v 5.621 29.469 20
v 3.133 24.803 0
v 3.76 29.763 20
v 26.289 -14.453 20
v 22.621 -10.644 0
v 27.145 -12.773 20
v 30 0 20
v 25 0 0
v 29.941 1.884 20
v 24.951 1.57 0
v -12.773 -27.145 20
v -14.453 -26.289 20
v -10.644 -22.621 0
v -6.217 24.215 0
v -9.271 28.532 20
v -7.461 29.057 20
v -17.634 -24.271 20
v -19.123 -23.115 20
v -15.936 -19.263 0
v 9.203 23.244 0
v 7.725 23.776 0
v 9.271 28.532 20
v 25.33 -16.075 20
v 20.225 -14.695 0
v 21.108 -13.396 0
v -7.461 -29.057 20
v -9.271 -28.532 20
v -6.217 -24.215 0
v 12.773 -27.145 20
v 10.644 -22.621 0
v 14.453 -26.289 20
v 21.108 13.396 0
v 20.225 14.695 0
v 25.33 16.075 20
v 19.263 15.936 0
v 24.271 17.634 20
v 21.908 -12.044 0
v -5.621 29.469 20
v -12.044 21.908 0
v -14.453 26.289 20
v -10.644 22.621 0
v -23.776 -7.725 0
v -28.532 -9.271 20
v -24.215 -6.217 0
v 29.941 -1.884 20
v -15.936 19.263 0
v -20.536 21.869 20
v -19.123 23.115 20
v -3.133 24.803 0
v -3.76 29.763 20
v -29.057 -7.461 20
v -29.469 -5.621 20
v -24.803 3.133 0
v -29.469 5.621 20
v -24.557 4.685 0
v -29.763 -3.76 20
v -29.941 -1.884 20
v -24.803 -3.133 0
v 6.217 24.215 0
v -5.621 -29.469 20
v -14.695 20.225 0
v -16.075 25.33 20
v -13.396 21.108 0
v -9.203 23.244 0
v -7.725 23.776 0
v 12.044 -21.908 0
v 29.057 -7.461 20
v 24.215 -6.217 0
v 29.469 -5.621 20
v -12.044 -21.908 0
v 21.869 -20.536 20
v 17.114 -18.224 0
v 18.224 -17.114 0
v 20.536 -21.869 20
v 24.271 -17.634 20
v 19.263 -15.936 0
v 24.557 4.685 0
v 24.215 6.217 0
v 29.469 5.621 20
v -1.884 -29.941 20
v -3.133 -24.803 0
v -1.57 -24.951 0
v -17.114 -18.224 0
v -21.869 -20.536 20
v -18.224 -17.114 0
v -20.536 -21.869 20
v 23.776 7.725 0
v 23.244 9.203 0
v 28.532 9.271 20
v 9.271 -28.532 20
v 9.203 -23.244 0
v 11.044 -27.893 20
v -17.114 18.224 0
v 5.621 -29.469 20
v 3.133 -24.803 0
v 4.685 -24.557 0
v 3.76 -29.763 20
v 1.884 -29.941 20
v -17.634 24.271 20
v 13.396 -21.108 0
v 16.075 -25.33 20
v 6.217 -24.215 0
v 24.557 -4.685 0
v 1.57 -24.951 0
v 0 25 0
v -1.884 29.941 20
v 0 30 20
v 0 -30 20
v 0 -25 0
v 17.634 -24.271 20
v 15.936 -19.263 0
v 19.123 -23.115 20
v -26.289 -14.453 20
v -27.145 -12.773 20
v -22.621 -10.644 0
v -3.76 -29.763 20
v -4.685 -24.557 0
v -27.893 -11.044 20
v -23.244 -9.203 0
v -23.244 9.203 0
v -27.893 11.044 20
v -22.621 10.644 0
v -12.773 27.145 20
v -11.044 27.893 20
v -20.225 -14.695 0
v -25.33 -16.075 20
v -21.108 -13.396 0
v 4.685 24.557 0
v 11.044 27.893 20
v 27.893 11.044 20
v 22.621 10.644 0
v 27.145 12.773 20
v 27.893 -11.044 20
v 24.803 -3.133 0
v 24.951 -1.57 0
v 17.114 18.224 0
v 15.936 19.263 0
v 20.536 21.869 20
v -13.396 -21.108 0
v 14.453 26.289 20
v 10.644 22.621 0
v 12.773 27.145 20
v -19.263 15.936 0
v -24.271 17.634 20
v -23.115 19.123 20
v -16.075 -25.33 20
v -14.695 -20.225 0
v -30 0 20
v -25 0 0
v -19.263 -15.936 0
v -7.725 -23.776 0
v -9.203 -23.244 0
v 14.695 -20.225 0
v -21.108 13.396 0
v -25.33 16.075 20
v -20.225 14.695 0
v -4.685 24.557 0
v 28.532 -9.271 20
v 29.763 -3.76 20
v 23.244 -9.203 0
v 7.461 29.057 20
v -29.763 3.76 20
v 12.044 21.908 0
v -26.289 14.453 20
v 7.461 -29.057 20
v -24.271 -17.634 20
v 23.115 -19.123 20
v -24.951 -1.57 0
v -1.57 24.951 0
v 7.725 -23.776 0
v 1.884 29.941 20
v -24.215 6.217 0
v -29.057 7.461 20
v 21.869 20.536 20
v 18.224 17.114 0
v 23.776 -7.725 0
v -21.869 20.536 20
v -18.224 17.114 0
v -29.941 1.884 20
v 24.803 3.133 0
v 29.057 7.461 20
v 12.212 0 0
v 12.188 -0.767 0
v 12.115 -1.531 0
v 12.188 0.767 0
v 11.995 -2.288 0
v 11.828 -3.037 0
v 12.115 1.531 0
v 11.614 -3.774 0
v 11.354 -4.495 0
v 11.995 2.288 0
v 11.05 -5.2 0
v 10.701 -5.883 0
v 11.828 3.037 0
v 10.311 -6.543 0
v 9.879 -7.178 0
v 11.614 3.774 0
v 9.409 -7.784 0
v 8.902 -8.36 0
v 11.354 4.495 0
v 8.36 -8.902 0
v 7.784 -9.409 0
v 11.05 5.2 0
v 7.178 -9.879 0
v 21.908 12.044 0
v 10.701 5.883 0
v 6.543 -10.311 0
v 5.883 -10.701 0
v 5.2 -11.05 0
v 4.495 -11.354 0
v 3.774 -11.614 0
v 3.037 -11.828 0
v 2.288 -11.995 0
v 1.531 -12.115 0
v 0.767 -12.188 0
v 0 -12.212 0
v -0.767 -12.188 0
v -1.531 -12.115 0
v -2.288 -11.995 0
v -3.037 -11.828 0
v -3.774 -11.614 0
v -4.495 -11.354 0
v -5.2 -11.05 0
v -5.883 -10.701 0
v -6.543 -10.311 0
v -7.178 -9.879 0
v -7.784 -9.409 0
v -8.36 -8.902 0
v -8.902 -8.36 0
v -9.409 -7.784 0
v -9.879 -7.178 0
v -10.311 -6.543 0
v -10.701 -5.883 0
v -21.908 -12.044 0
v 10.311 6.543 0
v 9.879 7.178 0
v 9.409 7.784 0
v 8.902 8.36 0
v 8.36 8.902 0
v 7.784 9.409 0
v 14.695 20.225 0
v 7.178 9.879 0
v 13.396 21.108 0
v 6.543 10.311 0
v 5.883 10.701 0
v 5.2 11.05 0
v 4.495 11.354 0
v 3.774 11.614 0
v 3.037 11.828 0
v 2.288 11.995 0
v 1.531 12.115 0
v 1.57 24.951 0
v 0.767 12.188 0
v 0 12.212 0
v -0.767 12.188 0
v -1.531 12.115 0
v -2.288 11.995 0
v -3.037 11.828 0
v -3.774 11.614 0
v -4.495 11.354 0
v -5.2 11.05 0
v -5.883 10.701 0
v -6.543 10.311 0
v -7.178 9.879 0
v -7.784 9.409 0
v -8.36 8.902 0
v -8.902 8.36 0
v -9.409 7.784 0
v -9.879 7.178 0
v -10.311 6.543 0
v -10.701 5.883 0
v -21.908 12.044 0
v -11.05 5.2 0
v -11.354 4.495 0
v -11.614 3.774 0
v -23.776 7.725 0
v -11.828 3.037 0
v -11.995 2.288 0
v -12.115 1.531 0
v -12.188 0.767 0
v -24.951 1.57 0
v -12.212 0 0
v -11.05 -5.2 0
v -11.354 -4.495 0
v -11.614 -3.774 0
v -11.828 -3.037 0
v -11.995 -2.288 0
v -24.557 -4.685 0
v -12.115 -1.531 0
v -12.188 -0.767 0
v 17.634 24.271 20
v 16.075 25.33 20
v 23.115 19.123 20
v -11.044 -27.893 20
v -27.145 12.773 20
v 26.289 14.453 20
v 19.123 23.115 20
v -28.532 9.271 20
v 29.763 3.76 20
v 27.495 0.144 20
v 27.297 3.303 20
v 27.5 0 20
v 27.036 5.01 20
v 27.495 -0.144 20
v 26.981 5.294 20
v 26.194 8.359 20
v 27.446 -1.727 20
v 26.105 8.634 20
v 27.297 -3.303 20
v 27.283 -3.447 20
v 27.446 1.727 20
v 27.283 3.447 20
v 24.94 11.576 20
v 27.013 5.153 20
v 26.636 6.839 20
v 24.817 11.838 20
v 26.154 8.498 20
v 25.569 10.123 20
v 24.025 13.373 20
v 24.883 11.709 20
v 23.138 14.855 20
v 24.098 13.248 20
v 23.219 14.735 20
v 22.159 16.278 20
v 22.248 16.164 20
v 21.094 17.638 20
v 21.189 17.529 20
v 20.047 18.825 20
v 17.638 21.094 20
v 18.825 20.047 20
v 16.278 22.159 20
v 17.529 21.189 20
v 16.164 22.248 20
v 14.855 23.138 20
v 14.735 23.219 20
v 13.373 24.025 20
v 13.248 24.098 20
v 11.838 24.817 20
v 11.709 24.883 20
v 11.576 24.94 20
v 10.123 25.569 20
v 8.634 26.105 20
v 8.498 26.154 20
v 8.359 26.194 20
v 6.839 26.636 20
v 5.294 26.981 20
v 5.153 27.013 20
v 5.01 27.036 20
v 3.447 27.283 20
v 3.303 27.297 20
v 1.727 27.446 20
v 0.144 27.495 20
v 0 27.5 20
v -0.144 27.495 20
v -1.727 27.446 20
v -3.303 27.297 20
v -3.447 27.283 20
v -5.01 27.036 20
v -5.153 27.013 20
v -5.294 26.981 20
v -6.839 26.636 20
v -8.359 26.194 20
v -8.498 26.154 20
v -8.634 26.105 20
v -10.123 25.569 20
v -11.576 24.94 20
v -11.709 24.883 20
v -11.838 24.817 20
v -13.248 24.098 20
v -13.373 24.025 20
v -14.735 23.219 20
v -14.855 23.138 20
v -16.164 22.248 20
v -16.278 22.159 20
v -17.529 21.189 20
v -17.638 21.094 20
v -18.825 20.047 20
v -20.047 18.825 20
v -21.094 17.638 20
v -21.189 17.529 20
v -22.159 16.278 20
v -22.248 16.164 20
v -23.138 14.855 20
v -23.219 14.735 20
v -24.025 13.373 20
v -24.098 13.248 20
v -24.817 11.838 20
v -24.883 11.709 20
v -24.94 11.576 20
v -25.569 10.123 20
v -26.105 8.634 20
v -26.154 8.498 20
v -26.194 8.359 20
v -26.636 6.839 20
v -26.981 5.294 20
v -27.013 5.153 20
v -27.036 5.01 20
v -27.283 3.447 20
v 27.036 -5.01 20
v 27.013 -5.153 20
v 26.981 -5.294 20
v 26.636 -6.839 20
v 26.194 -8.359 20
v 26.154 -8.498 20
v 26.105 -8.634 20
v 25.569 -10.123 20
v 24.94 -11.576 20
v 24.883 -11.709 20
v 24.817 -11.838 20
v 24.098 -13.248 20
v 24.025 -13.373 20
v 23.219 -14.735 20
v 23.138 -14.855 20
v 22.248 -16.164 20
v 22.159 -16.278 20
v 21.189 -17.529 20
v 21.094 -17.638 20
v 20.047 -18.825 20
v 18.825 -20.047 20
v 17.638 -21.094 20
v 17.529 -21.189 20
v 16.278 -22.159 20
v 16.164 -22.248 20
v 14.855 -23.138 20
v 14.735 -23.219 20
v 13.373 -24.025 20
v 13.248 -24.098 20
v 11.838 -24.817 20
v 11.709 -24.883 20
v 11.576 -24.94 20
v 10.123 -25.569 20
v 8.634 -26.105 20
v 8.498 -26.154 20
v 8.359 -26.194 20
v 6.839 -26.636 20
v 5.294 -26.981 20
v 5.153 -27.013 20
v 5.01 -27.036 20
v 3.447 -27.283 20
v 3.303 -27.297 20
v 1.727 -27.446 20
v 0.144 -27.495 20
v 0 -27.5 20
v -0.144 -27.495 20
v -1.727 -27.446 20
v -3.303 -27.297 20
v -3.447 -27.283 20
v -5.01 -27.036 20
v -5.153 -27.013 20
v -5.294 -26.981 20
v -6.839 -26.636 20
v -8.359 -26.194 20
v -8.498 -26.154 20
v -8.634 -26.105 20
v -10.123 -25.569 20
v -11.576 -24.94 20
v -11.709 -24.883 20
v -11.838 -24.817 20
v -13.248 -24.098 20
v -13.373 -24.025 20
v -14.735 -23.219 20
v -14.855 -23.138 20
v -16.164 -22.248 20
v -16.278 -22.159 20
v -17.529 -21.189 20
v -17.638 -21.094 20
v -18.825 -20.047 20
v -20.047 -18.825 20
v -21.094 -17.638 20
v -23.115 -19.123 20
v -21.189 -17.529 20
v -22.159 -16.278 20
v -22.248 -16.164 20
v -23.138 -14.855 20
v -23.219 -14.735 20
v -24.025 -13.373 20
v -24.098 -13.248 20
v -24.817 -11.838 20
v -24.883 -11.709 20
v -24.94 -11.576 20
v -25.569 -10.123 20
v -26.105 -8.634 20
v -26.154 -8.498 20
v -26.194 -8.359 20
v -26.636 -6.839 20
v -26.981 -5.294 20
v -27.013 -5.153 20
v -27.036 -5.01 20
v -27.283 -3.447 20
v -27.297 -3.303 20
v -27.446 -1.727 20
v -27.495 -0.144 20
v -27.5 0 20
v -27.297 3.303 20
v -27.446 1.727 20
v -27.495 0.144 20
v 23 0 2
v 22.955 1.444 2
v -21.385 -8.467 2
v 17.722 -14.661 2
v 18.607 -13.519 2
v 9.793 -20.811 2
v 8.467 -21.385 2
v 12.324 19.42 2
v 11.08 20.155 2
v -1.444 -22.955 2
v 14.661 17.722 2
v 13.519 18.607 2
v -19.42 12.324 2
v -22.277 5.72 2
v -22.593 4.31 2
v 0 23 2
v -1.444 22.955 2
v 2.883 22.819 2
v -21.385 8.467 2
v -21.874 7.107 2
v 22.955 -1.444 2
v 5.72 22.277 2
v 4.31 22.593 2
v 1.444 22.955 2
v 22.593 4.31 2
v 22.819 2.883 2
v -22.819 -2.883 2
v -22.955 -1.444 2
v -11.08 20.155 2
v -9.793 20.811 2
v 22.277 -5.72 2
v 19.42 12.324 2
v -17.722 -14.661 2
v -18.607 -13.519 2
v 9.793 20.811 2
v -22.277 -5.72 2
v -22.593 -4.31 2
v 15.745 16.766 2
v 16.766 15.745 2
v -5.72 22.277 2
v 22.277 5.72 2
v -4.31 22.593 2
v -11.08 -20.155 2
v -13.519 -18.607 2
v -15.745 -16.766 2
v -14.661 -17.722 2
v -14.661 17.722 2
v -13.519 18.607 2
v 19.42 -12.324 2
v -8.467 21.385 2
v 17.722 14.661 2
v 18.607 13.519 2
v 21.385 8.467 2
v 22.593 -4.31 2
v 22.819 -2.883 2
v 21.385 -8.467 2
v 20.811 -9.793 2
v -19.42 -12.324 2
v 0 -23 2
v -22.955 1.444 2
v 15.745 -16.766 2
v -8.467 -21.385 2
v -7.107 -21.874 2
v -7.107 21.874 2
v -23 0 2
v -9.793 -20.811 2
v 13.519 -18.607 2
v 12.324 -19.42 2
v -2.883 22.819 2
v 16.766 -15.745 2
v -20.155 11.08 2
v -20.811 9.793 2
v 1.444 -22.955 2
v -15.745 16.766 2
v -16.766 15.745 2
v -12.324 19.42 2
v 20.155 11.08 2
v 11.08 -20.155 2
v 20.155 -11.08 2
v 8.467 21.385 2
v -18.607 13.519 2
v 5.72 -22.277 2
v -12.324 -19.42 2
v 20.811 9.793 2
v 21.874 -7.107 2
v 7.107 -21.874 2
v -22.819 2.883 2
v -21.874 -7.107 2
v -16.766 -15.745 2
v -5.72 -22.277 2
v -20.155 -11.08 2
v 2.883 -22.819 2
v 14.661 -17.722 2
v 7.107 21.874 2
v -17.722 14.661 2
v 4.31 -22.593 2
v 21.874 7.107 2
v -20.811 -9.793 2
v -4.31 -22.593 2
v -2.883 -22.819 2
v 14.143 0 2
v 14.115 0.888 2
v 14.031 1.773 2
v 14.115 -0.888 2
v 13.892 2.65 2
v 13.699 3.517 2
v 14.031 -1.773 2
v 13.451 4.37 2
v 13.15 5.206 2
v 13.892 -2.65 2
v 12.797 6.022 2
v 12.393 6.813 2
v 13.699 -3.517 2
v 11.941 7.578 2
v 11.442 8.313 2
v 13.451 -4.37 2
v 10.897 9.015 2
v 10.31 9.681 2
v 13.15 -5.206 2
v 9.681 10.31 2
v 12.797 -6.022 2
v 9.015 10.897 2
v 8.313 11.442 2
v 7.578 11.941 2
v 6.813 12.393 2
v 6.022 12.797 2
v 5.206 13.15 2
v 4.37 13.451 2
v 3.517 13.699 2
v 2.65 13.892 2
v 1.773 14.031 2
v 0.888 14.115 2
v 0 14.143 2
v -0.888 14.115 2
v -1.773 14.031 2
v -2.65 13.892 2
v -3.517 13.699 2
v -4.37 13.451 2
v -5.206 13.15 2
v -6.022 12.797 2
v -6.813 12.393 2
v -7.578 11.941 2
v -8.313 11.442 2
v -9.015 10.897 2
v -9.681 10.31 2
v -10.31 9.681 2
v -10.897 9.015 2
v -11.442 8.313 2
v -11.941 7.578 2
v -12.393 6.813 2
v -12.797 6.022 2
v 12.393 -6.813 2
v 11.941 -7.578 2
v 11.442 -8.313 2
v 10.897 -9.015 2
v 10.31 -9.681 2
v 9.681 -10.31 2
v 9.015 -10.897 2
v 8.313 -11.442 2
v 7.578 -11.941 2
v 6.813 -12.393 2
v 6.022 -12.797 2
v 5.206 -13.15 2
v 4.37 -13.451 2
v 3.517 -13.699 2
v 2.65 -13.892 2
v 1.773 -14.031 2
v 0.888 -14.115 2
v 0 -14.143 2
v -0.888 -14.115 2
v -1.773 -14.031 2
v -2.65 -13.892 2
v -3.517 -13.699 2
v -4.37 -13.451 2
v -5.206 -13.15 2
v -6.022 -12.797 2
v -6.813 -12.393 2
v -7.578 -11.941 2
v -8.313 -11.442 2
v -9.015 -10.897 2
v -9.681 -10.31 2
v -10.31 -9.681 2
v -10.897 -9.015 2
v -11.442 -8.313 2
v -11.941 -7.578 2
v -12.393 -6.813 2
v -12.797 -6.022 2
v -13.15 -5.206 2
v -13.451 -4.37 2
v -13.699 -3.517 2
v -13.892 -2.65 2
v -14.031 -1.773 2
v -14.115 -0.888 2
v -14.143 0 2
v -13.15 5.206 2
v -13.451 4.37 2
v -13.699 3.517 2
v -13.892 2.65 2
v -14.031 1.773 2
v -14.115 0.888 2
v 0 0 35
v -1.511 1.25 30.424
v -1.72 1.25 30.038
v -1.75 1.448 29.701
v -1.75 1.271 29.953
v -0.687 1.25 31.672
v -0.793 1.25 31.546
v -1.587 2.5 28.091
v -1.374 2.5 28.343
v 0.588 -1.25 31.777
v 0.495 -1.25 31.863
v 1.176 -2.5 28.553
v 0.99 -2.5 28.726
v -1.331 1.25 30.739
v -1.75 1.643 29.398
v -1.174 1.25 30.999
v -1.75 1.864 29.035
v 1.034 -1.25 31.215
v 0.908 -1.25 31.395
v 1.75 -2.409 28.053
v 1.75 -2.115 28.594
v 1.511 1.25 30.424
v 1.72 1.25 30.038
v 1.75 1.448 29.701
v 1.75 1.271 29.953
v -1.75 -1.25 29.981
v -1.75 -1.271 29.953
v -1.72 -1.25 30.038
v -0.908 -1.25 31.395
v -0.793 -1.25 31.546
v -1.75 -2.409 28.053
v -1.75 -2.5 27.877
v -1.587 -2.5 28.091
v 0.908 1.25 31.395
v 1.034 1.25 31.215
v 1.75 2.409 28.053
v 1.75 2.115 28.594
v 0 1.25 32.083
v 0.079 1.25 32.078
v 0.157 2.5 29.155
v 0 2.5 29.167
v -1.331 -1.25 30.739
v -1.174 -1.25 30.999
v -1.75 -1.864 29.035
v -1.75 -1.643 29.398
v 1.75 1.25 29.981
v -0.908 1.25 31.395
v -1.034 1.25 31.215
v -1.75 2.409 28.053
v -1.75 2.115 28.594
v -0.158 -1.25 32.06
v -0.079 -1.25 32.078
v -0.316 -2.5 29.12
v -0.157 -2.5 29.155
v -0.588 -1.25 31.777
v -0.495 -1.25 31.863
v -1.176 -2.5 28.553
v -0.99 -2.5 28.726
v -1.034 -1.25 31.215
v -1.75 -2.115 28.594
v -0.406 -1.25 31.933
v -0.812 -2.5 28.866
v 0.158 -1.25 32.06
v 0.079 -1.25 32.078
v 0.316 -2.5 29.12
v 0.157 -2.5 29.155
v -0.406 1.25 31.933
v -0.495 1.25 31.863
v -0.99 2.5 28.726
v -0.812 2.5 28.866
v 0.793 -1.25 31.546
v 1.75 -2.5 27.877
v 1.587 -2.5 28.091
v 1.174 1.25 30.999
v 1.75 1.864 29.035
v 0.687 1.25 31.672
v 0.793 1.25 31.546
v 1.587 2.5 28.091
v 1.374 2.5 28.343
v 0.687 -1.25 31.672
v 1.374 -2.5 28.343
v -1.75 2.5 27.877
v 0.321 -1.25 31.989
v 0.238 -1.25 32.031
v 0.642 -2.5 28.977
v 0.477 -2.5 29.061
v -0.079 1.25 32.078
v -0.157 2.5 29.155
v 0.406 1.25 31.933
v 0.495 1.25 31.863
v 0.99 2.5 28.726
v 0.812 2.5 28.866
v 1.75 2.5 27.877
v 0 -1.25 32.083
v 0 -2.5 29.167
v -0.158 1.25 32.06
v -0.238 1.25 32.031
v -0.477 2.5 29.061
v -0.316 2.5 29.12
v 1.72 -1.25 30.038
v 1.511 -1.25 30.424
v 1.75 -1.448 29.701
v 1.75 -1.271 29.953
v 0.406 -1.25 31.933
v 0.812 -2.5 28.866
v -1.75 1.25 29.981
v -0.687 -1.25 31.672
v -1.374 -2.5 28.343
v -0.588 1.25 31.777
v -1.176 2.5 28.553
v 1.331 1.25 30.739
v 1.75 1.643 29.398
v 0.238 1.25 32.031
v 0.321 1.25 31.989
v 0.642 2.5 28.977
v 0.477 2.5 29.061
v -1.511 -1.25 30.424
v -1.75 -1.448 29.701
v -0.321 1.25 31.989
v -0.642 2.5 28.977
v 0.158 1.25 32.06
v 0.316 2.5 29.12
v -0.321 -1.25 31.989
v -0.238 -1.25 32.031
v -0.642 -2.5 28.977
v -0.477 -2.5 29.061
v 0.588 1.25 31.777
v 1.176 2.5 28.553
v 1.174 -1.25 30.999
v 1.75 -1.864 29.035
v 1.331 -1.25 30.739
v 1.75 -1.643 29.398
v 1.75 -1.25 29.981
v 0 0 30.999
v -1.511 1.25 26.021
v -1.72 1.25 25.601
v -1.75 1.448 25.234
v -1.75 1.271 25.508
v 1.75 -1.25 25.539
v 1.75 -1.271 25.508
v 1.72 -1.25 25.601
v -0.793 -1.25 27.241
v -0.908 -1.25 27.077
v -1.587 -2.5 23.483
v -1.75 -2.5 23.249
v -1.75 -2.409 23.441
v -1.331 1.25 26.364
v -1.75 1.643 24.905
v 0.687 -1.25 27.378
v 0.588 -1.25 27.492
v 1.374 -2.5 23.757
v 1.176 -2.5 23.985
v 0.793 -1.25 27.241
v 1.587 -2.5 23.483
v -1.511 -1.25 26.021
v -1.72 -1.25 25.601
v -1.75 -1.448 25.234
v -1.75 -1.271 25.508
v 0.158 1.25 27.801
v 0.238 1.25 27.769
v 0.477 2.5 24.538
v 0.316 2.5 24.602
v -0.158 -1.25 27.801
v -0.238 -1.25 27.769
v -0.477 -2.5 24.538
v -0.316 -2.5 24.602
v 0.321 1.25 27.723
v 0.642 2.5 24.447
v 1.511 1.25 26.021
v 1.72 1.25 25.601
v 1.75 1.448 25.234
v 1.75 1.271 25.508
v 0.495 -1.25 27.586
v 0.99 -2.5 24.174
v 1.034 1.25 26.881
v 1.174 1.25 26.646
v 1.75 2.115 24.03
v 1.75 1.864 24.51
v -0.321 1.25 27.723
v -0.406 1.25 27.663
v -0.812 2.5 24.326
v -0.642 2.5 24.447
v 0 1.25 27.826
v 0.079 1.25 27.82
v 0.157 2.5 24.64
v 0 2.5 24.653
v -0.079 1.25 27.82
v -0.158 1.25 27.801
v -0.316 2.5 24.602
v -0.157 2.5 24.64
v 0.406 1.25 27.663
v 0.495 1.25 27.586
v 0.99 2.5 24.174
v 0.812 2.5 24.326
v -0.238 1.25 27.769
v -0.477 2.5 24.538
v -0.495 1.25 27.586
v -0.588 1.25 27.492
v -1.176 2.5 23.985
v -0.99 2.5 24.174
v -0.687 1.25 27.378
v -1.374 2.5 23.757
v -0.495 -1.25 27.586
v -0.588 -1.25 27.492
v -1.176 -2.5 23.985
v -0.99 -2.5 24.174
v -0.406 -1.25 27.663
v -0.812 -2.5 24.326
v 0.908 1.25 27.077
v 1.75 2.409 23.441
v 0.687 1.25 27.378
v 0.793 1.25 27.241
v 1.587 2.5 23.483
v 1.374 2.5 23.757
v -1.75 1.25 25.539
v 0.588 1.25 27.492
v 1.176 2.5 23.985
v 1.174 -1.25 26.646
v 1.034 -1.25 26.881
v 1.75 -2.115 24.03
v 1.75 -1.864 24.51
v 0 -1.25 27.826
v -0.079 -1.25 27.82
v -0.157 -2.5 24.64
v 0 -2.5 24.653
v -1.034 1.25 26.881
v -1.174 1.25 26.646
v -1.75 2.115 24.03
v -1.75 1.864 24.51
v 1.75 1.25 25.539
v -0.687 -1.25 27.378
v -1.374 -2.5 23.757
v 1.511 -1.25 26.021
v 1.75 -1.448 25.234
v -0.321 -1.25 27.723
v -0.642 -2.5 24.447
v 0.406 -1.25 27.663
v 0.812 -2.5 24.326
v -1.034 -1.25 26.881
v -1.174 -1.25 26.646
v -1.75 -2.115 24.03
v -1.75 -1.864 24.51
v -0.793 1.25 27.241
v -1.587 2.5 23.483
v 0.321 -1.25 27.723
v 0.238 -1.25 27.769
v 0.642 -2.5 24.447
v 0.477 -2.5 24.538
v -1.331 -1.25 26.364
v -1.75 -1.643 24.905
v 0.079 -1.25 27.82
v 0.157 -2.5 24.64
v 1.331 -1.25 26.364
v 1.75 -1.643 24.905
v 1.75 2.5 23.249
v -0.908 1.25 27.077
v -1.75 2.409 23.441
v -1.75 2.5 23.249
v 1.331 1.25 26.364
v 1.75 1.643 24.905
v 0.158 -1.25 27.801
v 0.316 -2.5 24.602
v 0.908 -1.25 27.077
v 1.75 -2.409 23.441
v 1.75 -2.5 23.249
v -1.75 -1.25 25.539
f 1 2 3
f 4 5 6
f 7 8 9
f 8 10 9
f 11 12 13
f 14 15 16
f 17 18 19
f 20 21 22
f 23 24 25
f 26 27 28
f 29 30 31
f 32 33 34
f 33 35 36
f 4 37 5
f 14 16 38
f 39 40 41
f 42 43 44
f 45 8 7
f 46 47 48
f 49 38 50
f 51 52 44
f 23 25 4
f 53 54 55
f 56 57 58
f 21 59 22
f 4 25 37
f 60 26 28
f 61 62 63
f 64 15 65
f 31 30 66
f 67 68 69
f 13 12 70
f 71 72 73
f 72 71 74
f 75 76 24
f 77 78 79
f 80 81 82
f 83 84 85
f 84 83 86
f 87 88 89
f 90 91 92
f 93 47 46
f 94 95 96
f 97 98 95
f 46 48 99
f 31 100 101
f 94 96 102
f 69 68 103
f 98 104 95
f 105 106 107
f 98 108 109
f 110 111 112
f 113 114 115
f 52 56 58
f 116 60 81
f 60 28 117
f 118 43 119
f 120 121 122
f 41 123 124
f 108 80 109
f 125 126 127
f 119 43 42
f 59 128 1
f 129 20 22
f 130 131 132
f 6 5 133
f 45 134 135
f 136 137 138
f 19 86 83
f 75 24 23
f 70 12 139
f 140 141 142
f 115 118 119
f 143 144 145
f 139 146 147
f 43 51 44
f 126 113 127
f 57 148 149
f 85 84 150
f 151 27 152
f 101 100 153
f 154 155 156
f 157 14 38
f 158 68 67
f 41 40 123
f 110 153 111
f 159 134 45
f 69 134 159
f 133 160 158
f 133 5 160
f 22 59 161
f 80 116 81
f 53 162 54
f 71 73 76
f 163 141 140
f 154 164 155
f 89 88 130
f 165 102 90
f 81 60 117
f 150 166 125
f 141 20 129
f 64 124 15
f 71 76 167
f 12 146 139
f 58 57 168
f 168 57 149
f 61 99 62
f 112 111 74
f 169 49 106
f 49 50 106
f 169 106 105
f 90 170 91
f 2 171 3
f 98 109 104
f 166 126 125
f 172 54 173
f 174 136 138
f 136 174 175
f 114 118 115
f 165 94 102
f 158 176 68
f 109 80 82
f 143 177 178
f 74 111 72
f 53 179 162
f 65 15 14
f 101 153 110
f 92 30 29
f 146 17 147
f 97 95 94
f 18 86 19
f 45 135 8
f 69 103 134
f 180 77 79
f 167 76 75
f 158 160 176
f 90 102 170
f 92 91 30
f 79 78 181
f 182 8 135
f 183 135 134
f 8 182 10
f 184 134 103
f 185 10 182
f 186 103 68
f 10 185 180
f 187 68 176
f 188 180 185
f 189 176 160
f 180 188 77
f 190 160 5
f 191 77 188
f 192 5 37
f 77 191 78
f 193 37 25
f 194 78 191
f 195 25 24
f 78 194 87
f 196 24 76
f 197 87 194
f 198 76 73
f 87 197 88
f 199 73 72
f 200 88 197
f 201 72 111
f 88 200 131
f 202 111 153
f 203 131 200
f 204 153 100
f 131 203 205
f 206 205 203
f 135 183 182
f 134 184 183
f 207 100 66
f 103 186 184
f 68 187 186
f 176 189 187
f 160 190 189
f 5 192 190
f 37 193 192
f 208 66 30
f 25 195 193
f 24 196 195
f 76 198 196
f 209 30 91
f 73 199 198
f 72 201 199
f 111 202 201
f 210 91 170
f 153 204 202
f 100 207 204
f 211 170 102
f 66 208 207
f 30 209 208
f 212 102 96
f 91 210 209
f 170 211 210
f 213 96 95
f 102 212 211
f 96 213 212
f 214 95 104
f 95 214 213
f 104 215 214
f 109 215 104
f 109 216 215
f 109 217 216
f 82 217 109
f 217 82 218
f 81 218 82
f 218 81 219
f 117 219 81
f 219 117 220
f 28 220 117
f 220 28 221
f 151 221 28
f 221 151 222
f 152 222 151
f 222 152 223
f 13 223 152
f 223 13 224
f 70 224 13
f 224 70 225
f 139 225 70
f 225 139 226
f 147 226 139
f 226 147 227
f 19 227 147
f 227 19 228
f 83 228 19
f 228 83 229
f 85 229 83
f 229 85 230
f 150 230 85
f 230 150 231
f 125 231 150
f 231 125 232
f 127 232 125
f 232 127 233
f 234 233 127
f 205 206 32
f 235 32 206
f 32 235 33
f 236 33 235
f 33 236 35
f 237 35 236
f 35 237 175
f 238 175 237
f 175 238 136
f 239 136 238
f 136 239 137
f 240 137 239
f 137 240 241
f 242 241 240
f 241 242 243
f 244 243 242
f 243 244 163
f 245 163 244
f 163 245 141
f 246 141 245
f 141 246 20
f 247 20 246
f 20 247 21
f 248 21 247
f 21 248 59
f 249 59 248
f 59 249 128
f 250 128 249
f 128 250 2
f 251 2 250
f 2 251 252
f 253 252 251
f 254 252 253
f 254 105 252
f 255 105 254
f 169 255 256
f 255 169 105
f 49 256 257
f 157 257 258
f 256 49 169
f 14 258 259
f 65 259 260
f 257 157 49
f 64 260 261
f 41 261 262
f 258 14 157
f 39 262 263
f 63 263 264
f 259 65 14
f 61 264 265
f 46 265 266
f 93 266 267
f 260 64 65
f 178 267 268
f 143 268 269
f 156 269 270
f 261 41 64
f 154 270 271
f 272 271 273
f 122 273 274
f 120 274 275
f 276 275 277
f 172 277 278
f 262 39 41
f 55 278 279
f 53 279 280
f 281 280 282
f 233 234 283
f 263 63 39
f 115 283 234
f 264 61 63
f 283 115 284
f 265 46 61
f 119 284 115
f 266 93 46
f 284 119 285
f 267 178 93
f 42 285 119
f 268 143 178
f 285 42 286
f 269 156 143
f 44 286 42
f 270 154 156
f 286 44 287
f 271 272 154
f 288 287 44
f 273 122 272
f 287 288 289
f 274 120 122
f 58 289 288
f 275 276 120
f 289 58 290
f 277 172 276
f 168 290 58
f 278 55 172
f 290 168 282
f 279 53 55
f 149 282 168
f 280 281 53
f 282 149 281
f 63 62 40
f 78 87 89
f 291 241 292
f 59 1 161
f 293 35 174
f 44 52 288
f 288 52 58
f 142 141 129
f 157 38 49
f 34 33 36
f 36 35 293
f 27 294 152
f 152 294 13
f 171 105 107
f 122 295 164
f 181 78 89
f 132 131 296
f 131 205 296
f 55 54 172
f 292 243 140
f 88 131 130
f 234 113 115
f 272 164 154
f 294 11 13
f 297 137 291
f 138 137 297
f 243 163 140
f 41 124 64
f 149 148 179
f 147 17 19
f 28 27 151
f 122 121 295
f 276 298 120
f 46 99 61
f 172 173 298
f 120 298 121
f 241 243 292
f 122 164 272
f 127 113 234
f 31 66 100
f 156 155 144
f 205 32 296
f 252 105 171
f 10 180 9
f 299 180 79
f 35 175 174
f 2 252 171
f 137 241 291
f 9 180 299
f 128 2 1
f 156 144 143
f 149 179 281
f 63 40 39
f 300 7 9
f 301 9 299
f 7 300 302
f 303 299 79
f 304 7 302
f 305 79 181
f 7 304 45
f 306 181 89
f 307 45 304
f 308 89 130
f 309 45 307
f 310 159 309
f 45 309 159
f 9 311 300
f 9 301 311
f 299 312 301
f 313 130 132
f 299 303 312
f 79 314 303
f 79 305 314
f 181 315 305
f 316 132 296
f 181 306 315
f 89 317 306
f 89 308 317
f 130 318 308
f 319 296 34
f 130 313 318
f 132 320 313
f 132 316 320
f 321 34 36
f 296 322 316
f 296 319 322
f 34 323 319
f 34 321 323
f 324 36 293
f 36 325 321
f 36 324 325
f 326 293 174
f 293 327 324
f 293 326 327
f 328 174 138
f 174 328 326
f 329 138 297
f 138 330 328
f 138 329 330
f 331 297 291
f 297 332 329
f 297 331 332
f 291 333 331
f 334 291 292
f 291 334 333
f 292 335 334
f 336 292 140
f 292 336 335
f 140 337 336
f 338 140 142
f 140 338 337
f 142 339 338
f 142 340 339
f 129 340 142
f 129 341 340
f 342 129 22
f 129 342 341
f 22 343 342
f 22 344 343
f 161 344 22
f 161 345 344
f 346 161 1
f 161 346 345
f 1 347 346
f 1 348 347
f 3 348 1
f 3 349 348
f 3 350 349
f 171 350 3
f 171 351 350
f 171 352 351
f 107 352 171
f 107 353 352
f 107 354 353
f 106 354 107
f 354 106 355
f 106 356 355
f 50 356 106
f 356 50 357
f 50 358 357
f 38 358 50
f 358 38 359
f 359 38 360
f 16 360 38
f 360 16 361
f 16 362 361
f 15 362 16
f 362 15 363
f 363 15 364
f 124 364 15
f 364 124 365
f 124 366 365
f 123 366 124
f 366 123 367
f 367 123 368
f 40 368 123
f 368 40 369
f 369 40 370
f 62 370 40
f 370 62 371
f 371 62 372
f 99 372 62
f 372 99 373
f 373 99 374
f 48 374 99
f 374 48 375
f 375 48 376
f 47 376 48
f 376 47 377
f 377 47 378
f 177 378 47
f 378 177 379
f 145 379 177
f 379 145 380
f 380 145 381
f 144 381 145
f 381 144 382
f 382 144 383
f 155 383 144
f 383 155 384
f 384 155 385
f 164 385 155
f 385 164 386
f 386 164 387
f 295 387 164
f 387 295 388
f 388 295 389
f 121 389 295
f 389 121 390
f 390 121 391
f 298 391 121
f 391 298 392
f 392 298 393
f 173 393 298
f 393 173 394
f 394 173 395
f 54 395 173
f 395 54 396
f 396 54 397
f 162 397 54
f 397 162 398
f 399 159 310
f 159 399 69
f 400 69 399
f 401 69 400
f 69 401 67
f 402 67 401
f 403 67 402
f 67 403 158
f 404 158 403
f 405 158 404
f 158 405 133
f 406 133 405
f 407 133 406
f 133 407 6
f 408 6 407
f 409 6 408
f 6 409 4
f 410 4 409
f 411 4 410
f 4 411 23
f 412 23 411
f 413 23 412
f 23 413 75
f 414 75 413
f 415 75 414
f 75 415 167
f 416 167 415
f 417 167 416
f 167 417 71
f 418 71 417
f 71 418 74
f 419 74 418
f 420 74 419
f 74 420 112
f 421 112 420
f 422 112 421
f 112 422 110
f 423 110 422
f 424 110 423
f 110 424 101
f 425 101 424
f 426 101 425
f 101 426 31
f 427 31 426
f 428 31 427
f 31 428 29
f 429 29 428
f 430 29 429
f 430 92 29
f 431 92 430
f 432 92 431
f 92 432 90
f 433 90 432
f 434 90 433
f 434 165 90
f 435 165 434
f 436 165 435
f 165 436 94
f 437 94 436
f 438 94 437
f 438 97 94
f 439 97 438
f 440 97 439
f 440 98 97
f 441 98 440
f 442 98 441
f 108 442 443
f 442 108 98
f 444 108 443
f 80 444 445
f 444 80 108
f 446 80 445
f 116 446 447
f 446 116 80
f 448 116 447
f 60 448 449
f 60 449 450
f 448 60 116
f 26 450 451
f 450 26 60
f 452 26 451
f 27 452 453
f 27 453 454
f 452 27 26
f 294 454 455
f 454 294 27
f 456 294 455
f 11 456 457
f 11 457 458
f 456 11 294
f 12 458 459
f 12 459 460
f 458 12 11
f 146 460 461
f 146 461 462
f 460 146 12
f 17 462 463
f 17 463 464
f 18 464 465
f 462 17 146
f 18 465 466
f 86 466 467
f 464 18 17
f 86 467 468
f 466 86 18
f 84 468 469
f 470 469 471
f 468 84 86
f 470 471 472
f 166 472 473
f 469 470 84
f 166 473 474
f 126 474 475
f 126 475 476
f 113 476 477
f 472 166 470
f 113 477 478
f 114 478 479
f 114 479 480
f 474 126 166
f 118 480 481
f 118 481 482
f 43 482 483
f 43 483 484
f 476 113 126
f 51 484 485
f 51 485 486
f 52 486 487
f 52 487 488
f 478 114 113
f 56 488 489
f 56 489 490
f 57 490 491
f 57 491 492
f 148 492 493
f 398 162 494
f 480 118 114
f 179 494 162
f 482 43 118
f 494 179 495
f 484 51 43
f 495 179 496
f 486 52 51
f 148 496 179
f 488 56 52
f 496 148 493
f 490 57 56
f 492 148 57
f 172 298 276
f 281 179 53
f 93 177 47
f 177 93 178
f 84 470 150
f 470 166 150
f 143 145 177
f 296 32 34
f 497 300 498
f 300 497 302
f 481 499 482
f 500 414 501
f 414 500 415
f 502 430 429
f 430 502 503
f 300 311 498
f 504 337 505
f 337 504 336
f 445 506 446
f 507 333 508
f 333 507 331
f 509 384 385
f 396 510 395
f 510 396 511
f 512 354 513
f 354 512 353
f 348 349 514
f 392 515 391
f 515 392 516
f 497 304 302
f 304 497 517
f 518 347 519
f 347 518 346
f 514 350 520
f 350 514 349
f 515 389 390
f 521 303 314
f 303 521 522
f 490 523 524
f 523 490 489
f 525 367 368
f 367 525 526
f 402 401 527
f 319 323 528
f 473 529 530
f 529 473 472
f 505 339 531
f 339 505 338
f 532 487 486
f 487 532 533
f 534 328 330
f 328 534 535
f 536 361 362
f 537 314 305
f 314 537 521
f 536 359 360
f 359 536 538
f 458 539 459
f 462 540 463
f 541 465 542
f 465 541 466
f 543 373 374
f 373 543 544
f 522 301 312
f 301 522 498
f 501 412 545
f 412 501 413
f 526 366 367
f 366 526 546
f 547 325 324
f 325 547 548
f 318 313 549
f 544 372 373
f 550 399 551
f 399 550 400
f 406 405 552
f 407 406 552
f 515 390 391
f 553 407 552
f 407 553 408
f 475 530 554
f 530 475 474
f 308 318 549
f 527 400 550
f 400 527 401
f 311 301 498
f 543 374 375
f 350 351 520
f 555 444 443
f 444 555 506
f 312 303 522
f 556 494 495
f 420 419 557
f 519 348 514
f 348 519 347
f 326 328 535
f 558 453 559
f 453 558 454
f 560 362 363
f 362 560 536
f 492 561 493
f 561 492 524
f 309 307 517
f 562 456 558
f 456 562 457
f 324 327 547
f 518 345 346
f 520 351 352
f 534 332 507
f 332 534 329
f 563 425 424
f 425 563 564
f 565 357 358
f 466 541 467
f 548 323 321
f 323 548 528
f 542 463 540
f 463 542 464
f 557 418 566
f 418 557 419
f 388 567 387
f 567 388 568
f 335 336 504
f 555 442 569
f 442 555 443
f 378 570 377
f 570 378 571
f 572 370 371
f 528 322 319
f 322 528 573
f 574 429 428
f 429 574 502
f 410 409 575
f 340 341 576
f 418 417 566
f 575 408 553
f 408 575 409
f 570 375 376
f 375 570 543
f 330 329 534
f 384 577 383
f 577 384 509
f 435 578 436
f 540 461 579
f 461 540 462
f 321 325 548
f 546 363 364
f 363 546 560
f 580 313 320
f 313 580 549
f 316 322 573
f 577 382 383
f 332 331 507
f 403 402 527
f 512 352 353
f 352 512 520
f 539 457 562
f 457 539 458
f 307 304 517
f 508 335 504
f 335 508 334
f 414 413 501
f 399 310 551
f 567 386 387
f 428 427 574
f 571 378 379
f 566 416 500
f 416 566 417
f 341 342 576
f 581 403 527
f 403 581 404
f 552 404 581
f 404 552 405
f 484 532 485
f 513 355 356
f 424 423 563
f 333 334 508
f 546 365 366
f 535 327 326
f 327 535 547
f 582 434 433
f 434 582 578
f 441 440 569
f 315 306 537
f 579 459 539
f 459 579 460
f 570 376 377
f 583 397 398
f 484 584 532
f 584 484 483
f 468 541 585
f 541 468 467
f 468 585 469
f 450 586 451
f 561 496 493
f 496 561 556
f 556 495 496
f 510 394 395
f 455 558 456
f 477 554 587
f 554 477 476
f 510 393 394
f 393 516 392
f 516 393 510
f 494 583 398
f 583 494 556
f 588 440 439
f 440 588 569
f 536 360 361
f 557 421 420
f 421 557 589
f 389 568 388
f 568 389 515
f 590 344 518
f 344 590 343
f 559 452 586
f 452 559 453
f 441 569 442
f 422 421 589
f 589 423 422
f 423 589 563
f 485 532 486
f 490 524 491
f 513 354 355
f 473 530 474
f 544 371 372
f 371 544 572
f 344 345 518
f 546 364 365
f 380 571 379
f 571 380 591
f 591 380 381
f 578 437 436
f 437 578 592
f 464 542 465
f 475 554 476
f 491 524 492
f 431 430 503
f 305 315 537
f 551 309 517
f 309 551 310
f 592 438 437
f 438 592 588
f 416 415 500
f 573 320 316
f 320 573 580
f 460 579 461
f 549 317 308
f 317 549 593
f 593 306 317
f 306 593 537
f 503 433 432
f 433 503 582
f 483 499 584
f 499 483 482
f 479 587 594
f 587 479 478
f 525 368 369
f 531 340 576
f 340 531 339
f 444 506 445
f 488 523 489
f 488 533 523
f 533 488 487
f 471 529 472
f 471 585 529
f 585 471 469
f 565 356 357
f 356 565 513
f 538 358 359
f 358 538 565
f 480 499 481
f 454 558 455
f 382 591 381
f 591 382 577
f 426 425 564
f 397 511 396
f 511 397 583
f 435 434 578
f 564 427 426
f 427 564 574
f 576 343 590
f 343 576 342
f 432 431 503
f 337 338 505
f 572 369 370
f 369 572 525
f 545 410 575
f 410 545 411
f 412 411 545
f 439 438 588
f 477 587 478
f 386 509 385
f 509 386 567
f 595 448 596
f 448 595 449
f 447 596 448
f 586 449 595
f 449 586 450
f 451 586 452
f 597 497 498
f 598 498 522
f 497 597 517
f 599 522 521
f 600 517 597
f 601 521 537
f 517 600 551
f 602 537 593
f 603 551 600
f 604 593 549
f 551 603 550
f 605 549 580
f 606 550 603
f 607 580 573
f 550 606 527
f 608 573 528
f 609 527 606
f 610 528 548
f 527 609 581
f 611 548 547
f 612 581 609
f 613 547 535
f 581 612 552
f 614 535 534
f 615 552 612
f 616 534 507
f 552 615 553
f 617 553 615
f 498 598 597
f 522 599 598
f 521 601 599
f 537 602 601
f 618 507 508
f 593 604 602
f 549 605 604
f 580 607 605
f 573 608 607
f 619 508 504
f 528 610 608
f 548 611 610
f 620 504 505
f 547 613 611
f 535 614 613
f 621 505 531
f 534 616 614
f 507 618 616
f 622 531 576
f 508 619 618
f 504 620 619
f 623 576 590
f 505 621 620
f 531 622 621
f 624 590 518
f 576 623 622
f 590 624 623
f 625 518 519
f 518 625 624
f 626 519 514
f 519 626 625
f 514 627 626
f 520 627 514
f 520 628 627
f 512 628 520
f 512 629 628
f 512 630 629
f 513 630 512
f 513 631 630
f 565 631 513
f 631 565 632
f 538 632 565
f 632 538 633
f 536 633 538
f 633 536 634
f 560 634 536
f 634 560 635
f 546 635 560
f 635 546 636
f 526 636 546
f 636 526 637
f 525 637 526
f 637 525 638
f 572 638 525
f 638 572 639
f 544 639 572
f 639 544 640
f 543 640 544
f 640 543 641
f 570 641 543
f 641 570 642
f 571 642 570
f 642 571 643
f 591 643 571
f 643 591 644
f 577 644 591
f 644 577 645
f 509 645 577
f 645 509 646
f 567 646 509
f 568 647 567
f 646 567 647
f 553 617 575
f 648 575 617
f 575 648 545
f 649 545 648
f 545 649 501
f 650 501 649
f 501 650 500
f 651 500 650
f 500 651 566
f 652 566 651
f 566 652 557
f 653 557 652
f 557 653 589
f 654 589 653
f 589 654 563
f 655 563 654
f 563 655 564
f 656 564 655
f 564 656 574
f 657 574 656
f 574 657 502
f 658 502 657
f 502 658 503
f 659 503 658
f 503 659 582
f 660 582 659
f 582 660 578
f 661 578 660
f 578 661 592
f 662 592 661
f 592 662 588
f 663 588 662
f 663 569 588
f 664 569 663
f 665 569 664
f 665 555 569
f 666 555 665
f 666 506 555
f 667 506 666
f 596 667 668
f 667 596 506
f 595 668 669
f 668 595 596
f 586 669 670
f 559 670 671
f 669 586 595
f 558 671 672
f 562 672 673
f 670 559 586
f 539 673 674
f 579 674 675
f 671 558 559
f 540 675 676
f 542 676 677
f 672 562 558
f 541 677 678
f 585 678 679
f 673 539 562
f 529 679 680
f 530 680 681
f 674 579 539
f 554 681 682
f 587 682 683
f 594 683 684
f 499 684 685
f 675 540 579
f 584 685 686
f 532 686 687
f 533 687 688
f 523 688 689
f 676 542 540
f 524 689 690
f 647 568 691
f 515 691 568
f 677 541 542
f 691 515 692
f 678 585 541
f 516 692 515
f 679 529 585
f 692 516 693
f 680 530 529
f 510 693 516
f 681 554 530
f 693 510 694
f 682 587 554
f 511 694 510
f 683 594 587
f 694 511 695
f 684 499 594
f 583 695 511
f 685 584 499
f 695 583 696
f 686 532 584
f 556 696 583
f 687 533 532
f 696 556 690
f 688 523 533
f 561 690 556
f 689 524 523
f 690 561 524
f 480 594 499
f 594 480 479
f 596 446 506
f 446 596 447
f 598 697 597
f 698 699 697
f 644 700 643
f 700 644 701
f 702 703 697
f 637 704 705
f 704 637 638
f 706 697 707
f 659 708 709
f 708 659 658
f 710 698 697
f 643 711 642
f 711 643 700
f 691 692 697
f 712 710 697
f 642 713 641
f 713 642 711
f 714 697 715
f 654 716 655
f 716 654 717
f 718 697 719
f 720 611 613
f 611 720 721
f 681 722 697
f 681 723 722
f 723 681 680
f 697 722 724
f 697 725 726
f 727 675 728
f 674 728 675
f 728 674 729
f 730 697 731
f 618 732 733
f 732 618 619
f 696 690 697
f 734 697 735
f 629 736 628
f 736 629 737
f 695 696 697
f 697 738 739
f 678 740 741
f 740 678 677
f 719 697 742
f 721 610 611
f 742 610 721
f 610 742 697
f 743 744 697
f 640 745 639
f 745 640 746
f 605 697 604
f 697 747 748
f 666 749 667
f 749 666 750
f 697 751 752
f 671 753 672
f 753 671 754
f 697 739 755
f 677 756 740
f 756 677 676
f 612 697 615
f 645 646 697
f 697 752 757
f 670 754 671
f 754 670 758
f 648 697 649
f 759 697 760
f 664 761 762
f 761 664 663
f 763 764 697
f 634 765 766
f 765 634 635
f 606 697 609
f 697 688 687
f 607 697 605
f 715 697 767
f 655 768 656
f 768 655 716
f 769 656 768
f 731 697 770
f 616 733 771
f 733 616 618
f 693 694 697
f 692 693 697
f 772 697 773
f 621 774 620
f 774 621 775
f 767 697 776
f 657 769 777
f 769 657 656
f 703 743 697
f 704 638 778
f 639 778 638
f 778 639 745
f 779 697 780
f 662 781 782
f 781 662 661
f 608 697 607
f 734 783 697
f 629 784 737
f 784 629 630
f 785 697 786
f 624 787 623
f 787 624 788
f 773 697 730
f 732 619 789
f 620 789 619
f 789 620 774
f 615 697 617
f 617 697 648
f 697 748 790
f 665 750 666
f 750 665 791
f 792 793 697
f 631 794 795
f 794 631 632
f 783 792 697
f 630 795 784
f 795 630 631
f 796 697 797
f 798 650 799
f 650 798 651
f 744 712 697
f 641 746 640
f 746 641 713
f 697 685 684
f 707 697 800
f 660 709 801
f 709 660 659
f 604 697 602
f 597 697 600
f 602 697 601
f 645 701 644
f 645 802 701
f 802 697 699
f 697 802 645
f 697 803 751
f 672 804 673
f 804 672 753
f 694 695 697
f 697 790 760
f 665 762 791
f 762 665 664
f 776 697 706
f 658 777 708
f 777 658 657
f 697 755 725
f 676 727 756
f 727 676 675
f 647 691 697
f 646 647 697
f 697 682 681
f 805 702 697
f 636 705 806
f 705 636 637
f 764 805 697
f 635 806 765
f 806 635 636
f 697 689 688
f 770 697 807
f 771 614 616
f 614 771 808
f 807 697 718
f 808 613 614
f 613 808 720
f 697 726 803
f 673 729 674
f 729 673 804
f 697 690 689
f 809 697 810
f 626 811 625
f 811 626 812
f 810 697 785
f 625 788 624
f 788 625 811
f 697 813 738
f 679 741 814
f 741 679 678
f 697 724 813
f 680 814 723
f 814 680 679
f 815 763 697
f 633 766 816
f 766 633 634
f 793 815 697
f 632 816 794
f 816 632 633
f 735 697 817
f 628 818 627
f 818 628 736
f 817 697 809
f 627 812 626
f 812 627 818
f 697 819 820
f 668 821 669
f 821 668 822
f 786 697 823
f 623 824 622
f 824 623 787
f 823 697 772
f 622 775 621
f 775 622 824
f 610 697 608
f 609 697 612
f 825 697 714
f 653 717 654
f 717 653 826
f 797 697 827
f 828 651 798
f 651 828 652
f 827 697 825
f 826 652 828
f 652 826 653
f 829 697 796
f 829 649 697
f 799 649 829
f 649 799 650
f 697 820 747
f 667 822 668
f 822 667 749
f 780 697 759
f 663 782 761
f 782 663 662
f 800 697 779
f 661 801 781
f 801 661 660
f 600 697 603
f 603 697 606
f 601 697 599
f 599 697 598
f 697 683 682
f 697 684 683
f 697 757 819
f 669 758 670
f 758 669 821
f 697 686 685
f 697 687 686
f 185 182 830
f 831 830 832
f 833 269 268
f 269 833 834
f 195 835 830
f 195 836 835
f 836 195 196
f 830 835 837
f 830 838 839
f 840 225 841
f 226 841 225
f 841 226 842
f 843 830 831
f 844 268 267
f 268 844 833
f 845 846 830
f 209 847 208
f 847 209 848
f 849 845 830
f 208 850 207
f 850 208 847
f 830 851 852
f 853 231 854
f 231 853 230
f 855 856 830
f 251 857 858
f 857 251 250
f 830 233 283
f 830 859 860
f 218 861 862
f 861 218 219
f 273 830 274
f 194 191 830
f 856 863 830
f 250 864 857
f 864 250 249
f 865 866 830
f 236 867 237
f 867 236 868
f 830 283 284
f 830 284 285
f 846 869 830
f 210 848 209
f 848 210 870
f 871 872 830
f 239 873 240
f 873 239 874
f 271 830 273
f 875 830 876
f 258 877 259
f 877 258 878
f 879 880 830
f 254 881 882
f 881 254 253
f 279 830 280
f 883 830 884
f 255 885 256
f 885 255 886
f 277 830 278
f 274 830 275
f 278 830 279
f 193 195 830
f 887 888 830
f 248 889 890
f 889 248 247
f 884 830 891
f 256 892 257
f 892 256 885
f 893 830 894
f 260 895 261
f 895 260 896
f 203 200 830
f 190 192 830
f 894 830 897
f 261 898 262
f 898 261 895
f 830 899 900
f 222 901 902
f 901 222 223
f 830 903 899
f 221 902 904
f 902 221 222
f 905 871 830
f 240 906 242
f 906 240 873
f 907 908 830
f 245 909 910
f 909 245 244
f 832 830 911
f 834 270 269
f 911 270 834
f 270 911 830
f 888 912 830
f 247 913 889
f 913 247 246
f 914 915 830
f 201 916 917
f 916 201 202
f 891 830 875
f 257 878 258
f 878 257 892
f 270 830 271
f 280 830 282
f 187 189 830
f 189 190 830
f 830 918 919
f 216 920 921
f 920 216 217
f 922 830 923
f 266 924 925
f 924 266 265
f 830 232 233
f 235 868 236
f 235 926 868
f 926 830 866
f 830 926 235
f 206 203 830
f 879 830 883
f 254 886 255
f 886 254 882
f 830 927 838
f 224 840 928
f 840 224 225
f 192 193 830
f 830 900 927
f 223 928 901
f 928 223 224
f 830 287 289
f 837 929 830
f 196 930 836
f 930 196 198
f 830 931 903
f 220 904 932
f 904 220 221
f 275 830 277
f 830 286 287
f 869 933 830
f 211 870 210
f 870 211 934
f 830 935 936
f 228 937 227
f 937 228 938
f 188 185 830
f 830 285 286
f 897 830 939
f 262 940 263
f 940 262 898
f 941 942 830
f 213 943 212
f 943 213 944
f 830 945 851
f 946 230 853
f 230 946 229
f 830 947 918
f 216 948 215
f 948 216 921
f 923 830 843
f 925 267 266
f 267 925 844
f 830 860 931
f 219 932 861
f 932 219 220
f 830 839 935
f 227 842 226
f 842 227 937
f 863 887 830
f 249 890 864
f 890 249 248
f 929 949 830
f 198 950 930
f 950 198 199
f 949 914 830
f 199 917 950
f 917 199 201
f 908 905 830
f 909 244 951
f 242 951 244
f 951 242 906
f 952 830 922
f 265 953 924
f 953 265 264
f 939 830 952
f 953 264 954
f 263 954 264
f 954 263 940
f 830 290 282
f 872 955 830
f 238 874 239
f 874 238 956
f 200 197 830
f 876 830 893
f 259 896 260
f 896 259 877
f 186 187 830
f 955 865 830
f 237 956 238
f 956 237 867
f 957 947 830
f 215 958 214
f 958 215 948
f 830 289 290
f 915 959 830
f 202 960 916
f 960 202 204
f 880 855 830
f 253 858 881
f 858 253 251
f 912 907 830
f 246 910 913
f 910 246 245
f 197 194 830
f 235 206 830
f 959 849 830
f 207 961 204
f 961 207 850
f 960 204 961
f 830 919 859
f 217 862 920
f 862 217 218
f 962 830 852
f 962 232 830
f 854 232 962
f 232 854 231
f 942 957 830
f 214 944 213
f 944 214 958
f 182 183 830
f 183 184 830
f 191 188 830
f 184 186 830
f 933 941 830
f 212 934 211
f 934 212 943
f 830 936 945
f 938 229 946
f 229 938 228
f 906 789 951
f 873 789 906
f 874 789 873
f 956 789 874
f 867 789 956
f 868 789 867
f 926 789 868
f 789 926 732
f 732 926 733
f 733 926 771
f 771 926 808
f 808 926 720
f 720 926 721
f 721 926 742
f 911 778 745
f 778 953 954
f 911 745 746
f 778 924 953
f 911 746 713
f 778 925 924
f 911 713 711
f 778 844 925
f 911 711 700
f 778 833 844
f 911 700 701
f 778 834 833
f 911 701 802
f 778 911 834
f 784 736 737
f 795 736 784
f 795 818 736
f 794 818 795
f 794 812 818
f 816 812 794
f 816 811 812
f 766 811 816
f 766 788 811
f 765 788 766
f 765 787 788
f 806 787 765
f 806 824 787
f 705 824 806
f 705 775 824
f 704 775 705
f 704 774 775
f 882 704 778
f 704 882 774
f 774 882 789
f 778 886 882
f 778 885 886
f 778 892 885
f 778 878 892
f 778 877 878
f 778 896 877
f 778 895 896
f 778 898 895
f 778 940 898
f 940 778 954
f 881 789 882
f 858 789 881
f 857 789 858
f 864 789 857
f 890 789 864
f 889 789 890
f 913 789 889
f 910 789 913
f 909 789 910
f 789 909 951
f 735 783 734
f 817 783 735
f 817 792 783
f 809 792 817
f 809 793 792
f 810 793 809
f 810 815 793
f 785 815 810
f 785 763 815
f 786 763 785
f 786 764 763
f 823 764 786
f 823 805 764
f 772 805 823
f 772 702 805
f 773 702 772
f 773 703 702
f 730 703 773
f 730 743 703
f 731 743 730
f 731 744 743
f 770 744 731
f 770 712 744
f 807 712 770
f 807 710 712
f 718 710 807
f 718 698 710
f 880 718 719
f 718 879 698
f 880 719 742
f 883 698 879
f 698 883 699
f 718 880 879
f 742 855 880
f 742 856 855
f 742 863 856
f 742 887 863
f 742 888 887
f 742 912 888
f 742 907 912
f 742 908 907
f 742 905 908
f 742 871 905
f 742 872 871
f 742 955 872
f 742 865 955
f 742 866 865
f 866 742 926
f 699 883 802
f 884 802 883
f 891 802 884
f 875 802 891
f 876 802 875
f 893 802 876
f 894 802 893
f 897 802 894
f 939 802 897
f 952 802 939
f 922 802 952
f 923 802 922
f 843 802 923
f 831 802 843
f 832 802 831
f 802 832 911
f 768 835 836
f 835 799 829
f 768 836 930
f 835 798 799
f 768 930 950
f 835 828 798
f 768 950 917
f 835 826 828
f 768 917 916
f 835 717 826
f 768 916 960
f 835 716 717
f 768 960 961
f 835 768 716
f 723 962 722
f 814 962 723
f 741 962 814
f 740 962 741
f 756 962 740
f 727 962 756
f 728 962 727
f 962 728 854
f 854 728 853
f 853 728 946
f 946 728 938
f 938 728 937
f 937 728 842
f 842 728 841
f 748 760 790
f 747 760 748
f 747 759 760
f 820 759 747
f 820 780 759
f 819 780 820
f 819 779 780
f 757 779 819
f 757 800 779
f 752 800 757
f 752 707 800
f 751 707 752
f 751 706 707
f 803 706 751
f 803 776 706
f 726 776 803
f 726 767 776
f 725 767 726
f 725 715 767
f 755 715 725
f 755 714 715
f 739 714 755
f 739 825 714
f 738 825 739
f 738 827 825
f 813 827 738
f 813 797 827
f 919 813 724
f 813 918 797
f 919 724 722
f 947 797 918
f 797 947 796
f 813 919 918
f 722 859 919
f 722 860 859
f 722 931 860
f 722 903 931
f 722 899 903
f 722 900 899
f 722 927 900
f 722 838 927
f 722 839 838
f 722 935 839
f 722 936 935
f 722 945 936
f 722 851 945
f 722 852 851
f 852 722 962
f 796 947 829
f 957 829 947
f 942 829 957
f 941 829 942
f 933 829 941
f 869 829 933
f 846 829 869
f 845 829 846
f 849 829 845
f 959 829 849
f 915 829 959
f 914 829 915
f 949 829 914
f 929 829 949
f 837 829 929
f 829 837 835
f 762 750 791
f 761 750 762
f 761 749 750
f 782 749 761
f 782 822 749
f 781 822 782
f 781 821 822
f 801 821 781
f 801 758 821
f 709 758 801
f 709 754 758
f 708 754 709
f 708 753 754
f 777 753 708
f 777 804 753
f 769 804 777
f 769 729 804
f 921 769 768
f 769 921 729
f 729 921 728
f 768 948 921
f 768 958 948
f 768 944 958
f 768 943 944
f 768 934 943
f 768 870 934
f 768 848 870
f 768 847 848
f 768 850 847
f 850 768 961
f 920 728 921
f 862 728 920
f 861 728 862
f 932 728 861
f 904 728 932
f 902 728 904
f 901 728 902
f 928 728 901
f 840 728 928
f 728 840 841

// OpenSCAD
$fn=100;

height=35;
width_top=60;
width_bottom=50;
trough_width=10;
trough_depth=20;
thickness=2;
ziptie_width=3.5;
ziptie_thick=1.25;

module cap() {
    cylinder(h=height, r1=width_bottom/2-trough_width, r2=0, center=false);
}

module cap_cutout() {
    translate([0,0,-thickness-.001])
        cylinder(h=height-thickness, r1=width_bottom/2-trough_width-thickness, r2=0, center=false);
}

module trough() {
    difference() {
        cylinder(h=trough_depth, r1=width_bottom/2, r2=width_top/2, center=false);
        translate([0,0,thickness])
            cylinder(h=trough_depth, r1=width_bottom/2-thickness, r2=width_top/2-thickness, center=false);
    }
}

module zip_tie() {
    translate([-ziptie_width/2, ziptie_thick, 0])
    cube([ziptie_width,ziptie_thick,height*2]);
}

module main() {
    difference() {
        union() {
            cap();
            trough();
        }
        cap_cutout();
        zip_tie();
        mirror([0,1,0])
        zip_tie();
    }
}

main();
